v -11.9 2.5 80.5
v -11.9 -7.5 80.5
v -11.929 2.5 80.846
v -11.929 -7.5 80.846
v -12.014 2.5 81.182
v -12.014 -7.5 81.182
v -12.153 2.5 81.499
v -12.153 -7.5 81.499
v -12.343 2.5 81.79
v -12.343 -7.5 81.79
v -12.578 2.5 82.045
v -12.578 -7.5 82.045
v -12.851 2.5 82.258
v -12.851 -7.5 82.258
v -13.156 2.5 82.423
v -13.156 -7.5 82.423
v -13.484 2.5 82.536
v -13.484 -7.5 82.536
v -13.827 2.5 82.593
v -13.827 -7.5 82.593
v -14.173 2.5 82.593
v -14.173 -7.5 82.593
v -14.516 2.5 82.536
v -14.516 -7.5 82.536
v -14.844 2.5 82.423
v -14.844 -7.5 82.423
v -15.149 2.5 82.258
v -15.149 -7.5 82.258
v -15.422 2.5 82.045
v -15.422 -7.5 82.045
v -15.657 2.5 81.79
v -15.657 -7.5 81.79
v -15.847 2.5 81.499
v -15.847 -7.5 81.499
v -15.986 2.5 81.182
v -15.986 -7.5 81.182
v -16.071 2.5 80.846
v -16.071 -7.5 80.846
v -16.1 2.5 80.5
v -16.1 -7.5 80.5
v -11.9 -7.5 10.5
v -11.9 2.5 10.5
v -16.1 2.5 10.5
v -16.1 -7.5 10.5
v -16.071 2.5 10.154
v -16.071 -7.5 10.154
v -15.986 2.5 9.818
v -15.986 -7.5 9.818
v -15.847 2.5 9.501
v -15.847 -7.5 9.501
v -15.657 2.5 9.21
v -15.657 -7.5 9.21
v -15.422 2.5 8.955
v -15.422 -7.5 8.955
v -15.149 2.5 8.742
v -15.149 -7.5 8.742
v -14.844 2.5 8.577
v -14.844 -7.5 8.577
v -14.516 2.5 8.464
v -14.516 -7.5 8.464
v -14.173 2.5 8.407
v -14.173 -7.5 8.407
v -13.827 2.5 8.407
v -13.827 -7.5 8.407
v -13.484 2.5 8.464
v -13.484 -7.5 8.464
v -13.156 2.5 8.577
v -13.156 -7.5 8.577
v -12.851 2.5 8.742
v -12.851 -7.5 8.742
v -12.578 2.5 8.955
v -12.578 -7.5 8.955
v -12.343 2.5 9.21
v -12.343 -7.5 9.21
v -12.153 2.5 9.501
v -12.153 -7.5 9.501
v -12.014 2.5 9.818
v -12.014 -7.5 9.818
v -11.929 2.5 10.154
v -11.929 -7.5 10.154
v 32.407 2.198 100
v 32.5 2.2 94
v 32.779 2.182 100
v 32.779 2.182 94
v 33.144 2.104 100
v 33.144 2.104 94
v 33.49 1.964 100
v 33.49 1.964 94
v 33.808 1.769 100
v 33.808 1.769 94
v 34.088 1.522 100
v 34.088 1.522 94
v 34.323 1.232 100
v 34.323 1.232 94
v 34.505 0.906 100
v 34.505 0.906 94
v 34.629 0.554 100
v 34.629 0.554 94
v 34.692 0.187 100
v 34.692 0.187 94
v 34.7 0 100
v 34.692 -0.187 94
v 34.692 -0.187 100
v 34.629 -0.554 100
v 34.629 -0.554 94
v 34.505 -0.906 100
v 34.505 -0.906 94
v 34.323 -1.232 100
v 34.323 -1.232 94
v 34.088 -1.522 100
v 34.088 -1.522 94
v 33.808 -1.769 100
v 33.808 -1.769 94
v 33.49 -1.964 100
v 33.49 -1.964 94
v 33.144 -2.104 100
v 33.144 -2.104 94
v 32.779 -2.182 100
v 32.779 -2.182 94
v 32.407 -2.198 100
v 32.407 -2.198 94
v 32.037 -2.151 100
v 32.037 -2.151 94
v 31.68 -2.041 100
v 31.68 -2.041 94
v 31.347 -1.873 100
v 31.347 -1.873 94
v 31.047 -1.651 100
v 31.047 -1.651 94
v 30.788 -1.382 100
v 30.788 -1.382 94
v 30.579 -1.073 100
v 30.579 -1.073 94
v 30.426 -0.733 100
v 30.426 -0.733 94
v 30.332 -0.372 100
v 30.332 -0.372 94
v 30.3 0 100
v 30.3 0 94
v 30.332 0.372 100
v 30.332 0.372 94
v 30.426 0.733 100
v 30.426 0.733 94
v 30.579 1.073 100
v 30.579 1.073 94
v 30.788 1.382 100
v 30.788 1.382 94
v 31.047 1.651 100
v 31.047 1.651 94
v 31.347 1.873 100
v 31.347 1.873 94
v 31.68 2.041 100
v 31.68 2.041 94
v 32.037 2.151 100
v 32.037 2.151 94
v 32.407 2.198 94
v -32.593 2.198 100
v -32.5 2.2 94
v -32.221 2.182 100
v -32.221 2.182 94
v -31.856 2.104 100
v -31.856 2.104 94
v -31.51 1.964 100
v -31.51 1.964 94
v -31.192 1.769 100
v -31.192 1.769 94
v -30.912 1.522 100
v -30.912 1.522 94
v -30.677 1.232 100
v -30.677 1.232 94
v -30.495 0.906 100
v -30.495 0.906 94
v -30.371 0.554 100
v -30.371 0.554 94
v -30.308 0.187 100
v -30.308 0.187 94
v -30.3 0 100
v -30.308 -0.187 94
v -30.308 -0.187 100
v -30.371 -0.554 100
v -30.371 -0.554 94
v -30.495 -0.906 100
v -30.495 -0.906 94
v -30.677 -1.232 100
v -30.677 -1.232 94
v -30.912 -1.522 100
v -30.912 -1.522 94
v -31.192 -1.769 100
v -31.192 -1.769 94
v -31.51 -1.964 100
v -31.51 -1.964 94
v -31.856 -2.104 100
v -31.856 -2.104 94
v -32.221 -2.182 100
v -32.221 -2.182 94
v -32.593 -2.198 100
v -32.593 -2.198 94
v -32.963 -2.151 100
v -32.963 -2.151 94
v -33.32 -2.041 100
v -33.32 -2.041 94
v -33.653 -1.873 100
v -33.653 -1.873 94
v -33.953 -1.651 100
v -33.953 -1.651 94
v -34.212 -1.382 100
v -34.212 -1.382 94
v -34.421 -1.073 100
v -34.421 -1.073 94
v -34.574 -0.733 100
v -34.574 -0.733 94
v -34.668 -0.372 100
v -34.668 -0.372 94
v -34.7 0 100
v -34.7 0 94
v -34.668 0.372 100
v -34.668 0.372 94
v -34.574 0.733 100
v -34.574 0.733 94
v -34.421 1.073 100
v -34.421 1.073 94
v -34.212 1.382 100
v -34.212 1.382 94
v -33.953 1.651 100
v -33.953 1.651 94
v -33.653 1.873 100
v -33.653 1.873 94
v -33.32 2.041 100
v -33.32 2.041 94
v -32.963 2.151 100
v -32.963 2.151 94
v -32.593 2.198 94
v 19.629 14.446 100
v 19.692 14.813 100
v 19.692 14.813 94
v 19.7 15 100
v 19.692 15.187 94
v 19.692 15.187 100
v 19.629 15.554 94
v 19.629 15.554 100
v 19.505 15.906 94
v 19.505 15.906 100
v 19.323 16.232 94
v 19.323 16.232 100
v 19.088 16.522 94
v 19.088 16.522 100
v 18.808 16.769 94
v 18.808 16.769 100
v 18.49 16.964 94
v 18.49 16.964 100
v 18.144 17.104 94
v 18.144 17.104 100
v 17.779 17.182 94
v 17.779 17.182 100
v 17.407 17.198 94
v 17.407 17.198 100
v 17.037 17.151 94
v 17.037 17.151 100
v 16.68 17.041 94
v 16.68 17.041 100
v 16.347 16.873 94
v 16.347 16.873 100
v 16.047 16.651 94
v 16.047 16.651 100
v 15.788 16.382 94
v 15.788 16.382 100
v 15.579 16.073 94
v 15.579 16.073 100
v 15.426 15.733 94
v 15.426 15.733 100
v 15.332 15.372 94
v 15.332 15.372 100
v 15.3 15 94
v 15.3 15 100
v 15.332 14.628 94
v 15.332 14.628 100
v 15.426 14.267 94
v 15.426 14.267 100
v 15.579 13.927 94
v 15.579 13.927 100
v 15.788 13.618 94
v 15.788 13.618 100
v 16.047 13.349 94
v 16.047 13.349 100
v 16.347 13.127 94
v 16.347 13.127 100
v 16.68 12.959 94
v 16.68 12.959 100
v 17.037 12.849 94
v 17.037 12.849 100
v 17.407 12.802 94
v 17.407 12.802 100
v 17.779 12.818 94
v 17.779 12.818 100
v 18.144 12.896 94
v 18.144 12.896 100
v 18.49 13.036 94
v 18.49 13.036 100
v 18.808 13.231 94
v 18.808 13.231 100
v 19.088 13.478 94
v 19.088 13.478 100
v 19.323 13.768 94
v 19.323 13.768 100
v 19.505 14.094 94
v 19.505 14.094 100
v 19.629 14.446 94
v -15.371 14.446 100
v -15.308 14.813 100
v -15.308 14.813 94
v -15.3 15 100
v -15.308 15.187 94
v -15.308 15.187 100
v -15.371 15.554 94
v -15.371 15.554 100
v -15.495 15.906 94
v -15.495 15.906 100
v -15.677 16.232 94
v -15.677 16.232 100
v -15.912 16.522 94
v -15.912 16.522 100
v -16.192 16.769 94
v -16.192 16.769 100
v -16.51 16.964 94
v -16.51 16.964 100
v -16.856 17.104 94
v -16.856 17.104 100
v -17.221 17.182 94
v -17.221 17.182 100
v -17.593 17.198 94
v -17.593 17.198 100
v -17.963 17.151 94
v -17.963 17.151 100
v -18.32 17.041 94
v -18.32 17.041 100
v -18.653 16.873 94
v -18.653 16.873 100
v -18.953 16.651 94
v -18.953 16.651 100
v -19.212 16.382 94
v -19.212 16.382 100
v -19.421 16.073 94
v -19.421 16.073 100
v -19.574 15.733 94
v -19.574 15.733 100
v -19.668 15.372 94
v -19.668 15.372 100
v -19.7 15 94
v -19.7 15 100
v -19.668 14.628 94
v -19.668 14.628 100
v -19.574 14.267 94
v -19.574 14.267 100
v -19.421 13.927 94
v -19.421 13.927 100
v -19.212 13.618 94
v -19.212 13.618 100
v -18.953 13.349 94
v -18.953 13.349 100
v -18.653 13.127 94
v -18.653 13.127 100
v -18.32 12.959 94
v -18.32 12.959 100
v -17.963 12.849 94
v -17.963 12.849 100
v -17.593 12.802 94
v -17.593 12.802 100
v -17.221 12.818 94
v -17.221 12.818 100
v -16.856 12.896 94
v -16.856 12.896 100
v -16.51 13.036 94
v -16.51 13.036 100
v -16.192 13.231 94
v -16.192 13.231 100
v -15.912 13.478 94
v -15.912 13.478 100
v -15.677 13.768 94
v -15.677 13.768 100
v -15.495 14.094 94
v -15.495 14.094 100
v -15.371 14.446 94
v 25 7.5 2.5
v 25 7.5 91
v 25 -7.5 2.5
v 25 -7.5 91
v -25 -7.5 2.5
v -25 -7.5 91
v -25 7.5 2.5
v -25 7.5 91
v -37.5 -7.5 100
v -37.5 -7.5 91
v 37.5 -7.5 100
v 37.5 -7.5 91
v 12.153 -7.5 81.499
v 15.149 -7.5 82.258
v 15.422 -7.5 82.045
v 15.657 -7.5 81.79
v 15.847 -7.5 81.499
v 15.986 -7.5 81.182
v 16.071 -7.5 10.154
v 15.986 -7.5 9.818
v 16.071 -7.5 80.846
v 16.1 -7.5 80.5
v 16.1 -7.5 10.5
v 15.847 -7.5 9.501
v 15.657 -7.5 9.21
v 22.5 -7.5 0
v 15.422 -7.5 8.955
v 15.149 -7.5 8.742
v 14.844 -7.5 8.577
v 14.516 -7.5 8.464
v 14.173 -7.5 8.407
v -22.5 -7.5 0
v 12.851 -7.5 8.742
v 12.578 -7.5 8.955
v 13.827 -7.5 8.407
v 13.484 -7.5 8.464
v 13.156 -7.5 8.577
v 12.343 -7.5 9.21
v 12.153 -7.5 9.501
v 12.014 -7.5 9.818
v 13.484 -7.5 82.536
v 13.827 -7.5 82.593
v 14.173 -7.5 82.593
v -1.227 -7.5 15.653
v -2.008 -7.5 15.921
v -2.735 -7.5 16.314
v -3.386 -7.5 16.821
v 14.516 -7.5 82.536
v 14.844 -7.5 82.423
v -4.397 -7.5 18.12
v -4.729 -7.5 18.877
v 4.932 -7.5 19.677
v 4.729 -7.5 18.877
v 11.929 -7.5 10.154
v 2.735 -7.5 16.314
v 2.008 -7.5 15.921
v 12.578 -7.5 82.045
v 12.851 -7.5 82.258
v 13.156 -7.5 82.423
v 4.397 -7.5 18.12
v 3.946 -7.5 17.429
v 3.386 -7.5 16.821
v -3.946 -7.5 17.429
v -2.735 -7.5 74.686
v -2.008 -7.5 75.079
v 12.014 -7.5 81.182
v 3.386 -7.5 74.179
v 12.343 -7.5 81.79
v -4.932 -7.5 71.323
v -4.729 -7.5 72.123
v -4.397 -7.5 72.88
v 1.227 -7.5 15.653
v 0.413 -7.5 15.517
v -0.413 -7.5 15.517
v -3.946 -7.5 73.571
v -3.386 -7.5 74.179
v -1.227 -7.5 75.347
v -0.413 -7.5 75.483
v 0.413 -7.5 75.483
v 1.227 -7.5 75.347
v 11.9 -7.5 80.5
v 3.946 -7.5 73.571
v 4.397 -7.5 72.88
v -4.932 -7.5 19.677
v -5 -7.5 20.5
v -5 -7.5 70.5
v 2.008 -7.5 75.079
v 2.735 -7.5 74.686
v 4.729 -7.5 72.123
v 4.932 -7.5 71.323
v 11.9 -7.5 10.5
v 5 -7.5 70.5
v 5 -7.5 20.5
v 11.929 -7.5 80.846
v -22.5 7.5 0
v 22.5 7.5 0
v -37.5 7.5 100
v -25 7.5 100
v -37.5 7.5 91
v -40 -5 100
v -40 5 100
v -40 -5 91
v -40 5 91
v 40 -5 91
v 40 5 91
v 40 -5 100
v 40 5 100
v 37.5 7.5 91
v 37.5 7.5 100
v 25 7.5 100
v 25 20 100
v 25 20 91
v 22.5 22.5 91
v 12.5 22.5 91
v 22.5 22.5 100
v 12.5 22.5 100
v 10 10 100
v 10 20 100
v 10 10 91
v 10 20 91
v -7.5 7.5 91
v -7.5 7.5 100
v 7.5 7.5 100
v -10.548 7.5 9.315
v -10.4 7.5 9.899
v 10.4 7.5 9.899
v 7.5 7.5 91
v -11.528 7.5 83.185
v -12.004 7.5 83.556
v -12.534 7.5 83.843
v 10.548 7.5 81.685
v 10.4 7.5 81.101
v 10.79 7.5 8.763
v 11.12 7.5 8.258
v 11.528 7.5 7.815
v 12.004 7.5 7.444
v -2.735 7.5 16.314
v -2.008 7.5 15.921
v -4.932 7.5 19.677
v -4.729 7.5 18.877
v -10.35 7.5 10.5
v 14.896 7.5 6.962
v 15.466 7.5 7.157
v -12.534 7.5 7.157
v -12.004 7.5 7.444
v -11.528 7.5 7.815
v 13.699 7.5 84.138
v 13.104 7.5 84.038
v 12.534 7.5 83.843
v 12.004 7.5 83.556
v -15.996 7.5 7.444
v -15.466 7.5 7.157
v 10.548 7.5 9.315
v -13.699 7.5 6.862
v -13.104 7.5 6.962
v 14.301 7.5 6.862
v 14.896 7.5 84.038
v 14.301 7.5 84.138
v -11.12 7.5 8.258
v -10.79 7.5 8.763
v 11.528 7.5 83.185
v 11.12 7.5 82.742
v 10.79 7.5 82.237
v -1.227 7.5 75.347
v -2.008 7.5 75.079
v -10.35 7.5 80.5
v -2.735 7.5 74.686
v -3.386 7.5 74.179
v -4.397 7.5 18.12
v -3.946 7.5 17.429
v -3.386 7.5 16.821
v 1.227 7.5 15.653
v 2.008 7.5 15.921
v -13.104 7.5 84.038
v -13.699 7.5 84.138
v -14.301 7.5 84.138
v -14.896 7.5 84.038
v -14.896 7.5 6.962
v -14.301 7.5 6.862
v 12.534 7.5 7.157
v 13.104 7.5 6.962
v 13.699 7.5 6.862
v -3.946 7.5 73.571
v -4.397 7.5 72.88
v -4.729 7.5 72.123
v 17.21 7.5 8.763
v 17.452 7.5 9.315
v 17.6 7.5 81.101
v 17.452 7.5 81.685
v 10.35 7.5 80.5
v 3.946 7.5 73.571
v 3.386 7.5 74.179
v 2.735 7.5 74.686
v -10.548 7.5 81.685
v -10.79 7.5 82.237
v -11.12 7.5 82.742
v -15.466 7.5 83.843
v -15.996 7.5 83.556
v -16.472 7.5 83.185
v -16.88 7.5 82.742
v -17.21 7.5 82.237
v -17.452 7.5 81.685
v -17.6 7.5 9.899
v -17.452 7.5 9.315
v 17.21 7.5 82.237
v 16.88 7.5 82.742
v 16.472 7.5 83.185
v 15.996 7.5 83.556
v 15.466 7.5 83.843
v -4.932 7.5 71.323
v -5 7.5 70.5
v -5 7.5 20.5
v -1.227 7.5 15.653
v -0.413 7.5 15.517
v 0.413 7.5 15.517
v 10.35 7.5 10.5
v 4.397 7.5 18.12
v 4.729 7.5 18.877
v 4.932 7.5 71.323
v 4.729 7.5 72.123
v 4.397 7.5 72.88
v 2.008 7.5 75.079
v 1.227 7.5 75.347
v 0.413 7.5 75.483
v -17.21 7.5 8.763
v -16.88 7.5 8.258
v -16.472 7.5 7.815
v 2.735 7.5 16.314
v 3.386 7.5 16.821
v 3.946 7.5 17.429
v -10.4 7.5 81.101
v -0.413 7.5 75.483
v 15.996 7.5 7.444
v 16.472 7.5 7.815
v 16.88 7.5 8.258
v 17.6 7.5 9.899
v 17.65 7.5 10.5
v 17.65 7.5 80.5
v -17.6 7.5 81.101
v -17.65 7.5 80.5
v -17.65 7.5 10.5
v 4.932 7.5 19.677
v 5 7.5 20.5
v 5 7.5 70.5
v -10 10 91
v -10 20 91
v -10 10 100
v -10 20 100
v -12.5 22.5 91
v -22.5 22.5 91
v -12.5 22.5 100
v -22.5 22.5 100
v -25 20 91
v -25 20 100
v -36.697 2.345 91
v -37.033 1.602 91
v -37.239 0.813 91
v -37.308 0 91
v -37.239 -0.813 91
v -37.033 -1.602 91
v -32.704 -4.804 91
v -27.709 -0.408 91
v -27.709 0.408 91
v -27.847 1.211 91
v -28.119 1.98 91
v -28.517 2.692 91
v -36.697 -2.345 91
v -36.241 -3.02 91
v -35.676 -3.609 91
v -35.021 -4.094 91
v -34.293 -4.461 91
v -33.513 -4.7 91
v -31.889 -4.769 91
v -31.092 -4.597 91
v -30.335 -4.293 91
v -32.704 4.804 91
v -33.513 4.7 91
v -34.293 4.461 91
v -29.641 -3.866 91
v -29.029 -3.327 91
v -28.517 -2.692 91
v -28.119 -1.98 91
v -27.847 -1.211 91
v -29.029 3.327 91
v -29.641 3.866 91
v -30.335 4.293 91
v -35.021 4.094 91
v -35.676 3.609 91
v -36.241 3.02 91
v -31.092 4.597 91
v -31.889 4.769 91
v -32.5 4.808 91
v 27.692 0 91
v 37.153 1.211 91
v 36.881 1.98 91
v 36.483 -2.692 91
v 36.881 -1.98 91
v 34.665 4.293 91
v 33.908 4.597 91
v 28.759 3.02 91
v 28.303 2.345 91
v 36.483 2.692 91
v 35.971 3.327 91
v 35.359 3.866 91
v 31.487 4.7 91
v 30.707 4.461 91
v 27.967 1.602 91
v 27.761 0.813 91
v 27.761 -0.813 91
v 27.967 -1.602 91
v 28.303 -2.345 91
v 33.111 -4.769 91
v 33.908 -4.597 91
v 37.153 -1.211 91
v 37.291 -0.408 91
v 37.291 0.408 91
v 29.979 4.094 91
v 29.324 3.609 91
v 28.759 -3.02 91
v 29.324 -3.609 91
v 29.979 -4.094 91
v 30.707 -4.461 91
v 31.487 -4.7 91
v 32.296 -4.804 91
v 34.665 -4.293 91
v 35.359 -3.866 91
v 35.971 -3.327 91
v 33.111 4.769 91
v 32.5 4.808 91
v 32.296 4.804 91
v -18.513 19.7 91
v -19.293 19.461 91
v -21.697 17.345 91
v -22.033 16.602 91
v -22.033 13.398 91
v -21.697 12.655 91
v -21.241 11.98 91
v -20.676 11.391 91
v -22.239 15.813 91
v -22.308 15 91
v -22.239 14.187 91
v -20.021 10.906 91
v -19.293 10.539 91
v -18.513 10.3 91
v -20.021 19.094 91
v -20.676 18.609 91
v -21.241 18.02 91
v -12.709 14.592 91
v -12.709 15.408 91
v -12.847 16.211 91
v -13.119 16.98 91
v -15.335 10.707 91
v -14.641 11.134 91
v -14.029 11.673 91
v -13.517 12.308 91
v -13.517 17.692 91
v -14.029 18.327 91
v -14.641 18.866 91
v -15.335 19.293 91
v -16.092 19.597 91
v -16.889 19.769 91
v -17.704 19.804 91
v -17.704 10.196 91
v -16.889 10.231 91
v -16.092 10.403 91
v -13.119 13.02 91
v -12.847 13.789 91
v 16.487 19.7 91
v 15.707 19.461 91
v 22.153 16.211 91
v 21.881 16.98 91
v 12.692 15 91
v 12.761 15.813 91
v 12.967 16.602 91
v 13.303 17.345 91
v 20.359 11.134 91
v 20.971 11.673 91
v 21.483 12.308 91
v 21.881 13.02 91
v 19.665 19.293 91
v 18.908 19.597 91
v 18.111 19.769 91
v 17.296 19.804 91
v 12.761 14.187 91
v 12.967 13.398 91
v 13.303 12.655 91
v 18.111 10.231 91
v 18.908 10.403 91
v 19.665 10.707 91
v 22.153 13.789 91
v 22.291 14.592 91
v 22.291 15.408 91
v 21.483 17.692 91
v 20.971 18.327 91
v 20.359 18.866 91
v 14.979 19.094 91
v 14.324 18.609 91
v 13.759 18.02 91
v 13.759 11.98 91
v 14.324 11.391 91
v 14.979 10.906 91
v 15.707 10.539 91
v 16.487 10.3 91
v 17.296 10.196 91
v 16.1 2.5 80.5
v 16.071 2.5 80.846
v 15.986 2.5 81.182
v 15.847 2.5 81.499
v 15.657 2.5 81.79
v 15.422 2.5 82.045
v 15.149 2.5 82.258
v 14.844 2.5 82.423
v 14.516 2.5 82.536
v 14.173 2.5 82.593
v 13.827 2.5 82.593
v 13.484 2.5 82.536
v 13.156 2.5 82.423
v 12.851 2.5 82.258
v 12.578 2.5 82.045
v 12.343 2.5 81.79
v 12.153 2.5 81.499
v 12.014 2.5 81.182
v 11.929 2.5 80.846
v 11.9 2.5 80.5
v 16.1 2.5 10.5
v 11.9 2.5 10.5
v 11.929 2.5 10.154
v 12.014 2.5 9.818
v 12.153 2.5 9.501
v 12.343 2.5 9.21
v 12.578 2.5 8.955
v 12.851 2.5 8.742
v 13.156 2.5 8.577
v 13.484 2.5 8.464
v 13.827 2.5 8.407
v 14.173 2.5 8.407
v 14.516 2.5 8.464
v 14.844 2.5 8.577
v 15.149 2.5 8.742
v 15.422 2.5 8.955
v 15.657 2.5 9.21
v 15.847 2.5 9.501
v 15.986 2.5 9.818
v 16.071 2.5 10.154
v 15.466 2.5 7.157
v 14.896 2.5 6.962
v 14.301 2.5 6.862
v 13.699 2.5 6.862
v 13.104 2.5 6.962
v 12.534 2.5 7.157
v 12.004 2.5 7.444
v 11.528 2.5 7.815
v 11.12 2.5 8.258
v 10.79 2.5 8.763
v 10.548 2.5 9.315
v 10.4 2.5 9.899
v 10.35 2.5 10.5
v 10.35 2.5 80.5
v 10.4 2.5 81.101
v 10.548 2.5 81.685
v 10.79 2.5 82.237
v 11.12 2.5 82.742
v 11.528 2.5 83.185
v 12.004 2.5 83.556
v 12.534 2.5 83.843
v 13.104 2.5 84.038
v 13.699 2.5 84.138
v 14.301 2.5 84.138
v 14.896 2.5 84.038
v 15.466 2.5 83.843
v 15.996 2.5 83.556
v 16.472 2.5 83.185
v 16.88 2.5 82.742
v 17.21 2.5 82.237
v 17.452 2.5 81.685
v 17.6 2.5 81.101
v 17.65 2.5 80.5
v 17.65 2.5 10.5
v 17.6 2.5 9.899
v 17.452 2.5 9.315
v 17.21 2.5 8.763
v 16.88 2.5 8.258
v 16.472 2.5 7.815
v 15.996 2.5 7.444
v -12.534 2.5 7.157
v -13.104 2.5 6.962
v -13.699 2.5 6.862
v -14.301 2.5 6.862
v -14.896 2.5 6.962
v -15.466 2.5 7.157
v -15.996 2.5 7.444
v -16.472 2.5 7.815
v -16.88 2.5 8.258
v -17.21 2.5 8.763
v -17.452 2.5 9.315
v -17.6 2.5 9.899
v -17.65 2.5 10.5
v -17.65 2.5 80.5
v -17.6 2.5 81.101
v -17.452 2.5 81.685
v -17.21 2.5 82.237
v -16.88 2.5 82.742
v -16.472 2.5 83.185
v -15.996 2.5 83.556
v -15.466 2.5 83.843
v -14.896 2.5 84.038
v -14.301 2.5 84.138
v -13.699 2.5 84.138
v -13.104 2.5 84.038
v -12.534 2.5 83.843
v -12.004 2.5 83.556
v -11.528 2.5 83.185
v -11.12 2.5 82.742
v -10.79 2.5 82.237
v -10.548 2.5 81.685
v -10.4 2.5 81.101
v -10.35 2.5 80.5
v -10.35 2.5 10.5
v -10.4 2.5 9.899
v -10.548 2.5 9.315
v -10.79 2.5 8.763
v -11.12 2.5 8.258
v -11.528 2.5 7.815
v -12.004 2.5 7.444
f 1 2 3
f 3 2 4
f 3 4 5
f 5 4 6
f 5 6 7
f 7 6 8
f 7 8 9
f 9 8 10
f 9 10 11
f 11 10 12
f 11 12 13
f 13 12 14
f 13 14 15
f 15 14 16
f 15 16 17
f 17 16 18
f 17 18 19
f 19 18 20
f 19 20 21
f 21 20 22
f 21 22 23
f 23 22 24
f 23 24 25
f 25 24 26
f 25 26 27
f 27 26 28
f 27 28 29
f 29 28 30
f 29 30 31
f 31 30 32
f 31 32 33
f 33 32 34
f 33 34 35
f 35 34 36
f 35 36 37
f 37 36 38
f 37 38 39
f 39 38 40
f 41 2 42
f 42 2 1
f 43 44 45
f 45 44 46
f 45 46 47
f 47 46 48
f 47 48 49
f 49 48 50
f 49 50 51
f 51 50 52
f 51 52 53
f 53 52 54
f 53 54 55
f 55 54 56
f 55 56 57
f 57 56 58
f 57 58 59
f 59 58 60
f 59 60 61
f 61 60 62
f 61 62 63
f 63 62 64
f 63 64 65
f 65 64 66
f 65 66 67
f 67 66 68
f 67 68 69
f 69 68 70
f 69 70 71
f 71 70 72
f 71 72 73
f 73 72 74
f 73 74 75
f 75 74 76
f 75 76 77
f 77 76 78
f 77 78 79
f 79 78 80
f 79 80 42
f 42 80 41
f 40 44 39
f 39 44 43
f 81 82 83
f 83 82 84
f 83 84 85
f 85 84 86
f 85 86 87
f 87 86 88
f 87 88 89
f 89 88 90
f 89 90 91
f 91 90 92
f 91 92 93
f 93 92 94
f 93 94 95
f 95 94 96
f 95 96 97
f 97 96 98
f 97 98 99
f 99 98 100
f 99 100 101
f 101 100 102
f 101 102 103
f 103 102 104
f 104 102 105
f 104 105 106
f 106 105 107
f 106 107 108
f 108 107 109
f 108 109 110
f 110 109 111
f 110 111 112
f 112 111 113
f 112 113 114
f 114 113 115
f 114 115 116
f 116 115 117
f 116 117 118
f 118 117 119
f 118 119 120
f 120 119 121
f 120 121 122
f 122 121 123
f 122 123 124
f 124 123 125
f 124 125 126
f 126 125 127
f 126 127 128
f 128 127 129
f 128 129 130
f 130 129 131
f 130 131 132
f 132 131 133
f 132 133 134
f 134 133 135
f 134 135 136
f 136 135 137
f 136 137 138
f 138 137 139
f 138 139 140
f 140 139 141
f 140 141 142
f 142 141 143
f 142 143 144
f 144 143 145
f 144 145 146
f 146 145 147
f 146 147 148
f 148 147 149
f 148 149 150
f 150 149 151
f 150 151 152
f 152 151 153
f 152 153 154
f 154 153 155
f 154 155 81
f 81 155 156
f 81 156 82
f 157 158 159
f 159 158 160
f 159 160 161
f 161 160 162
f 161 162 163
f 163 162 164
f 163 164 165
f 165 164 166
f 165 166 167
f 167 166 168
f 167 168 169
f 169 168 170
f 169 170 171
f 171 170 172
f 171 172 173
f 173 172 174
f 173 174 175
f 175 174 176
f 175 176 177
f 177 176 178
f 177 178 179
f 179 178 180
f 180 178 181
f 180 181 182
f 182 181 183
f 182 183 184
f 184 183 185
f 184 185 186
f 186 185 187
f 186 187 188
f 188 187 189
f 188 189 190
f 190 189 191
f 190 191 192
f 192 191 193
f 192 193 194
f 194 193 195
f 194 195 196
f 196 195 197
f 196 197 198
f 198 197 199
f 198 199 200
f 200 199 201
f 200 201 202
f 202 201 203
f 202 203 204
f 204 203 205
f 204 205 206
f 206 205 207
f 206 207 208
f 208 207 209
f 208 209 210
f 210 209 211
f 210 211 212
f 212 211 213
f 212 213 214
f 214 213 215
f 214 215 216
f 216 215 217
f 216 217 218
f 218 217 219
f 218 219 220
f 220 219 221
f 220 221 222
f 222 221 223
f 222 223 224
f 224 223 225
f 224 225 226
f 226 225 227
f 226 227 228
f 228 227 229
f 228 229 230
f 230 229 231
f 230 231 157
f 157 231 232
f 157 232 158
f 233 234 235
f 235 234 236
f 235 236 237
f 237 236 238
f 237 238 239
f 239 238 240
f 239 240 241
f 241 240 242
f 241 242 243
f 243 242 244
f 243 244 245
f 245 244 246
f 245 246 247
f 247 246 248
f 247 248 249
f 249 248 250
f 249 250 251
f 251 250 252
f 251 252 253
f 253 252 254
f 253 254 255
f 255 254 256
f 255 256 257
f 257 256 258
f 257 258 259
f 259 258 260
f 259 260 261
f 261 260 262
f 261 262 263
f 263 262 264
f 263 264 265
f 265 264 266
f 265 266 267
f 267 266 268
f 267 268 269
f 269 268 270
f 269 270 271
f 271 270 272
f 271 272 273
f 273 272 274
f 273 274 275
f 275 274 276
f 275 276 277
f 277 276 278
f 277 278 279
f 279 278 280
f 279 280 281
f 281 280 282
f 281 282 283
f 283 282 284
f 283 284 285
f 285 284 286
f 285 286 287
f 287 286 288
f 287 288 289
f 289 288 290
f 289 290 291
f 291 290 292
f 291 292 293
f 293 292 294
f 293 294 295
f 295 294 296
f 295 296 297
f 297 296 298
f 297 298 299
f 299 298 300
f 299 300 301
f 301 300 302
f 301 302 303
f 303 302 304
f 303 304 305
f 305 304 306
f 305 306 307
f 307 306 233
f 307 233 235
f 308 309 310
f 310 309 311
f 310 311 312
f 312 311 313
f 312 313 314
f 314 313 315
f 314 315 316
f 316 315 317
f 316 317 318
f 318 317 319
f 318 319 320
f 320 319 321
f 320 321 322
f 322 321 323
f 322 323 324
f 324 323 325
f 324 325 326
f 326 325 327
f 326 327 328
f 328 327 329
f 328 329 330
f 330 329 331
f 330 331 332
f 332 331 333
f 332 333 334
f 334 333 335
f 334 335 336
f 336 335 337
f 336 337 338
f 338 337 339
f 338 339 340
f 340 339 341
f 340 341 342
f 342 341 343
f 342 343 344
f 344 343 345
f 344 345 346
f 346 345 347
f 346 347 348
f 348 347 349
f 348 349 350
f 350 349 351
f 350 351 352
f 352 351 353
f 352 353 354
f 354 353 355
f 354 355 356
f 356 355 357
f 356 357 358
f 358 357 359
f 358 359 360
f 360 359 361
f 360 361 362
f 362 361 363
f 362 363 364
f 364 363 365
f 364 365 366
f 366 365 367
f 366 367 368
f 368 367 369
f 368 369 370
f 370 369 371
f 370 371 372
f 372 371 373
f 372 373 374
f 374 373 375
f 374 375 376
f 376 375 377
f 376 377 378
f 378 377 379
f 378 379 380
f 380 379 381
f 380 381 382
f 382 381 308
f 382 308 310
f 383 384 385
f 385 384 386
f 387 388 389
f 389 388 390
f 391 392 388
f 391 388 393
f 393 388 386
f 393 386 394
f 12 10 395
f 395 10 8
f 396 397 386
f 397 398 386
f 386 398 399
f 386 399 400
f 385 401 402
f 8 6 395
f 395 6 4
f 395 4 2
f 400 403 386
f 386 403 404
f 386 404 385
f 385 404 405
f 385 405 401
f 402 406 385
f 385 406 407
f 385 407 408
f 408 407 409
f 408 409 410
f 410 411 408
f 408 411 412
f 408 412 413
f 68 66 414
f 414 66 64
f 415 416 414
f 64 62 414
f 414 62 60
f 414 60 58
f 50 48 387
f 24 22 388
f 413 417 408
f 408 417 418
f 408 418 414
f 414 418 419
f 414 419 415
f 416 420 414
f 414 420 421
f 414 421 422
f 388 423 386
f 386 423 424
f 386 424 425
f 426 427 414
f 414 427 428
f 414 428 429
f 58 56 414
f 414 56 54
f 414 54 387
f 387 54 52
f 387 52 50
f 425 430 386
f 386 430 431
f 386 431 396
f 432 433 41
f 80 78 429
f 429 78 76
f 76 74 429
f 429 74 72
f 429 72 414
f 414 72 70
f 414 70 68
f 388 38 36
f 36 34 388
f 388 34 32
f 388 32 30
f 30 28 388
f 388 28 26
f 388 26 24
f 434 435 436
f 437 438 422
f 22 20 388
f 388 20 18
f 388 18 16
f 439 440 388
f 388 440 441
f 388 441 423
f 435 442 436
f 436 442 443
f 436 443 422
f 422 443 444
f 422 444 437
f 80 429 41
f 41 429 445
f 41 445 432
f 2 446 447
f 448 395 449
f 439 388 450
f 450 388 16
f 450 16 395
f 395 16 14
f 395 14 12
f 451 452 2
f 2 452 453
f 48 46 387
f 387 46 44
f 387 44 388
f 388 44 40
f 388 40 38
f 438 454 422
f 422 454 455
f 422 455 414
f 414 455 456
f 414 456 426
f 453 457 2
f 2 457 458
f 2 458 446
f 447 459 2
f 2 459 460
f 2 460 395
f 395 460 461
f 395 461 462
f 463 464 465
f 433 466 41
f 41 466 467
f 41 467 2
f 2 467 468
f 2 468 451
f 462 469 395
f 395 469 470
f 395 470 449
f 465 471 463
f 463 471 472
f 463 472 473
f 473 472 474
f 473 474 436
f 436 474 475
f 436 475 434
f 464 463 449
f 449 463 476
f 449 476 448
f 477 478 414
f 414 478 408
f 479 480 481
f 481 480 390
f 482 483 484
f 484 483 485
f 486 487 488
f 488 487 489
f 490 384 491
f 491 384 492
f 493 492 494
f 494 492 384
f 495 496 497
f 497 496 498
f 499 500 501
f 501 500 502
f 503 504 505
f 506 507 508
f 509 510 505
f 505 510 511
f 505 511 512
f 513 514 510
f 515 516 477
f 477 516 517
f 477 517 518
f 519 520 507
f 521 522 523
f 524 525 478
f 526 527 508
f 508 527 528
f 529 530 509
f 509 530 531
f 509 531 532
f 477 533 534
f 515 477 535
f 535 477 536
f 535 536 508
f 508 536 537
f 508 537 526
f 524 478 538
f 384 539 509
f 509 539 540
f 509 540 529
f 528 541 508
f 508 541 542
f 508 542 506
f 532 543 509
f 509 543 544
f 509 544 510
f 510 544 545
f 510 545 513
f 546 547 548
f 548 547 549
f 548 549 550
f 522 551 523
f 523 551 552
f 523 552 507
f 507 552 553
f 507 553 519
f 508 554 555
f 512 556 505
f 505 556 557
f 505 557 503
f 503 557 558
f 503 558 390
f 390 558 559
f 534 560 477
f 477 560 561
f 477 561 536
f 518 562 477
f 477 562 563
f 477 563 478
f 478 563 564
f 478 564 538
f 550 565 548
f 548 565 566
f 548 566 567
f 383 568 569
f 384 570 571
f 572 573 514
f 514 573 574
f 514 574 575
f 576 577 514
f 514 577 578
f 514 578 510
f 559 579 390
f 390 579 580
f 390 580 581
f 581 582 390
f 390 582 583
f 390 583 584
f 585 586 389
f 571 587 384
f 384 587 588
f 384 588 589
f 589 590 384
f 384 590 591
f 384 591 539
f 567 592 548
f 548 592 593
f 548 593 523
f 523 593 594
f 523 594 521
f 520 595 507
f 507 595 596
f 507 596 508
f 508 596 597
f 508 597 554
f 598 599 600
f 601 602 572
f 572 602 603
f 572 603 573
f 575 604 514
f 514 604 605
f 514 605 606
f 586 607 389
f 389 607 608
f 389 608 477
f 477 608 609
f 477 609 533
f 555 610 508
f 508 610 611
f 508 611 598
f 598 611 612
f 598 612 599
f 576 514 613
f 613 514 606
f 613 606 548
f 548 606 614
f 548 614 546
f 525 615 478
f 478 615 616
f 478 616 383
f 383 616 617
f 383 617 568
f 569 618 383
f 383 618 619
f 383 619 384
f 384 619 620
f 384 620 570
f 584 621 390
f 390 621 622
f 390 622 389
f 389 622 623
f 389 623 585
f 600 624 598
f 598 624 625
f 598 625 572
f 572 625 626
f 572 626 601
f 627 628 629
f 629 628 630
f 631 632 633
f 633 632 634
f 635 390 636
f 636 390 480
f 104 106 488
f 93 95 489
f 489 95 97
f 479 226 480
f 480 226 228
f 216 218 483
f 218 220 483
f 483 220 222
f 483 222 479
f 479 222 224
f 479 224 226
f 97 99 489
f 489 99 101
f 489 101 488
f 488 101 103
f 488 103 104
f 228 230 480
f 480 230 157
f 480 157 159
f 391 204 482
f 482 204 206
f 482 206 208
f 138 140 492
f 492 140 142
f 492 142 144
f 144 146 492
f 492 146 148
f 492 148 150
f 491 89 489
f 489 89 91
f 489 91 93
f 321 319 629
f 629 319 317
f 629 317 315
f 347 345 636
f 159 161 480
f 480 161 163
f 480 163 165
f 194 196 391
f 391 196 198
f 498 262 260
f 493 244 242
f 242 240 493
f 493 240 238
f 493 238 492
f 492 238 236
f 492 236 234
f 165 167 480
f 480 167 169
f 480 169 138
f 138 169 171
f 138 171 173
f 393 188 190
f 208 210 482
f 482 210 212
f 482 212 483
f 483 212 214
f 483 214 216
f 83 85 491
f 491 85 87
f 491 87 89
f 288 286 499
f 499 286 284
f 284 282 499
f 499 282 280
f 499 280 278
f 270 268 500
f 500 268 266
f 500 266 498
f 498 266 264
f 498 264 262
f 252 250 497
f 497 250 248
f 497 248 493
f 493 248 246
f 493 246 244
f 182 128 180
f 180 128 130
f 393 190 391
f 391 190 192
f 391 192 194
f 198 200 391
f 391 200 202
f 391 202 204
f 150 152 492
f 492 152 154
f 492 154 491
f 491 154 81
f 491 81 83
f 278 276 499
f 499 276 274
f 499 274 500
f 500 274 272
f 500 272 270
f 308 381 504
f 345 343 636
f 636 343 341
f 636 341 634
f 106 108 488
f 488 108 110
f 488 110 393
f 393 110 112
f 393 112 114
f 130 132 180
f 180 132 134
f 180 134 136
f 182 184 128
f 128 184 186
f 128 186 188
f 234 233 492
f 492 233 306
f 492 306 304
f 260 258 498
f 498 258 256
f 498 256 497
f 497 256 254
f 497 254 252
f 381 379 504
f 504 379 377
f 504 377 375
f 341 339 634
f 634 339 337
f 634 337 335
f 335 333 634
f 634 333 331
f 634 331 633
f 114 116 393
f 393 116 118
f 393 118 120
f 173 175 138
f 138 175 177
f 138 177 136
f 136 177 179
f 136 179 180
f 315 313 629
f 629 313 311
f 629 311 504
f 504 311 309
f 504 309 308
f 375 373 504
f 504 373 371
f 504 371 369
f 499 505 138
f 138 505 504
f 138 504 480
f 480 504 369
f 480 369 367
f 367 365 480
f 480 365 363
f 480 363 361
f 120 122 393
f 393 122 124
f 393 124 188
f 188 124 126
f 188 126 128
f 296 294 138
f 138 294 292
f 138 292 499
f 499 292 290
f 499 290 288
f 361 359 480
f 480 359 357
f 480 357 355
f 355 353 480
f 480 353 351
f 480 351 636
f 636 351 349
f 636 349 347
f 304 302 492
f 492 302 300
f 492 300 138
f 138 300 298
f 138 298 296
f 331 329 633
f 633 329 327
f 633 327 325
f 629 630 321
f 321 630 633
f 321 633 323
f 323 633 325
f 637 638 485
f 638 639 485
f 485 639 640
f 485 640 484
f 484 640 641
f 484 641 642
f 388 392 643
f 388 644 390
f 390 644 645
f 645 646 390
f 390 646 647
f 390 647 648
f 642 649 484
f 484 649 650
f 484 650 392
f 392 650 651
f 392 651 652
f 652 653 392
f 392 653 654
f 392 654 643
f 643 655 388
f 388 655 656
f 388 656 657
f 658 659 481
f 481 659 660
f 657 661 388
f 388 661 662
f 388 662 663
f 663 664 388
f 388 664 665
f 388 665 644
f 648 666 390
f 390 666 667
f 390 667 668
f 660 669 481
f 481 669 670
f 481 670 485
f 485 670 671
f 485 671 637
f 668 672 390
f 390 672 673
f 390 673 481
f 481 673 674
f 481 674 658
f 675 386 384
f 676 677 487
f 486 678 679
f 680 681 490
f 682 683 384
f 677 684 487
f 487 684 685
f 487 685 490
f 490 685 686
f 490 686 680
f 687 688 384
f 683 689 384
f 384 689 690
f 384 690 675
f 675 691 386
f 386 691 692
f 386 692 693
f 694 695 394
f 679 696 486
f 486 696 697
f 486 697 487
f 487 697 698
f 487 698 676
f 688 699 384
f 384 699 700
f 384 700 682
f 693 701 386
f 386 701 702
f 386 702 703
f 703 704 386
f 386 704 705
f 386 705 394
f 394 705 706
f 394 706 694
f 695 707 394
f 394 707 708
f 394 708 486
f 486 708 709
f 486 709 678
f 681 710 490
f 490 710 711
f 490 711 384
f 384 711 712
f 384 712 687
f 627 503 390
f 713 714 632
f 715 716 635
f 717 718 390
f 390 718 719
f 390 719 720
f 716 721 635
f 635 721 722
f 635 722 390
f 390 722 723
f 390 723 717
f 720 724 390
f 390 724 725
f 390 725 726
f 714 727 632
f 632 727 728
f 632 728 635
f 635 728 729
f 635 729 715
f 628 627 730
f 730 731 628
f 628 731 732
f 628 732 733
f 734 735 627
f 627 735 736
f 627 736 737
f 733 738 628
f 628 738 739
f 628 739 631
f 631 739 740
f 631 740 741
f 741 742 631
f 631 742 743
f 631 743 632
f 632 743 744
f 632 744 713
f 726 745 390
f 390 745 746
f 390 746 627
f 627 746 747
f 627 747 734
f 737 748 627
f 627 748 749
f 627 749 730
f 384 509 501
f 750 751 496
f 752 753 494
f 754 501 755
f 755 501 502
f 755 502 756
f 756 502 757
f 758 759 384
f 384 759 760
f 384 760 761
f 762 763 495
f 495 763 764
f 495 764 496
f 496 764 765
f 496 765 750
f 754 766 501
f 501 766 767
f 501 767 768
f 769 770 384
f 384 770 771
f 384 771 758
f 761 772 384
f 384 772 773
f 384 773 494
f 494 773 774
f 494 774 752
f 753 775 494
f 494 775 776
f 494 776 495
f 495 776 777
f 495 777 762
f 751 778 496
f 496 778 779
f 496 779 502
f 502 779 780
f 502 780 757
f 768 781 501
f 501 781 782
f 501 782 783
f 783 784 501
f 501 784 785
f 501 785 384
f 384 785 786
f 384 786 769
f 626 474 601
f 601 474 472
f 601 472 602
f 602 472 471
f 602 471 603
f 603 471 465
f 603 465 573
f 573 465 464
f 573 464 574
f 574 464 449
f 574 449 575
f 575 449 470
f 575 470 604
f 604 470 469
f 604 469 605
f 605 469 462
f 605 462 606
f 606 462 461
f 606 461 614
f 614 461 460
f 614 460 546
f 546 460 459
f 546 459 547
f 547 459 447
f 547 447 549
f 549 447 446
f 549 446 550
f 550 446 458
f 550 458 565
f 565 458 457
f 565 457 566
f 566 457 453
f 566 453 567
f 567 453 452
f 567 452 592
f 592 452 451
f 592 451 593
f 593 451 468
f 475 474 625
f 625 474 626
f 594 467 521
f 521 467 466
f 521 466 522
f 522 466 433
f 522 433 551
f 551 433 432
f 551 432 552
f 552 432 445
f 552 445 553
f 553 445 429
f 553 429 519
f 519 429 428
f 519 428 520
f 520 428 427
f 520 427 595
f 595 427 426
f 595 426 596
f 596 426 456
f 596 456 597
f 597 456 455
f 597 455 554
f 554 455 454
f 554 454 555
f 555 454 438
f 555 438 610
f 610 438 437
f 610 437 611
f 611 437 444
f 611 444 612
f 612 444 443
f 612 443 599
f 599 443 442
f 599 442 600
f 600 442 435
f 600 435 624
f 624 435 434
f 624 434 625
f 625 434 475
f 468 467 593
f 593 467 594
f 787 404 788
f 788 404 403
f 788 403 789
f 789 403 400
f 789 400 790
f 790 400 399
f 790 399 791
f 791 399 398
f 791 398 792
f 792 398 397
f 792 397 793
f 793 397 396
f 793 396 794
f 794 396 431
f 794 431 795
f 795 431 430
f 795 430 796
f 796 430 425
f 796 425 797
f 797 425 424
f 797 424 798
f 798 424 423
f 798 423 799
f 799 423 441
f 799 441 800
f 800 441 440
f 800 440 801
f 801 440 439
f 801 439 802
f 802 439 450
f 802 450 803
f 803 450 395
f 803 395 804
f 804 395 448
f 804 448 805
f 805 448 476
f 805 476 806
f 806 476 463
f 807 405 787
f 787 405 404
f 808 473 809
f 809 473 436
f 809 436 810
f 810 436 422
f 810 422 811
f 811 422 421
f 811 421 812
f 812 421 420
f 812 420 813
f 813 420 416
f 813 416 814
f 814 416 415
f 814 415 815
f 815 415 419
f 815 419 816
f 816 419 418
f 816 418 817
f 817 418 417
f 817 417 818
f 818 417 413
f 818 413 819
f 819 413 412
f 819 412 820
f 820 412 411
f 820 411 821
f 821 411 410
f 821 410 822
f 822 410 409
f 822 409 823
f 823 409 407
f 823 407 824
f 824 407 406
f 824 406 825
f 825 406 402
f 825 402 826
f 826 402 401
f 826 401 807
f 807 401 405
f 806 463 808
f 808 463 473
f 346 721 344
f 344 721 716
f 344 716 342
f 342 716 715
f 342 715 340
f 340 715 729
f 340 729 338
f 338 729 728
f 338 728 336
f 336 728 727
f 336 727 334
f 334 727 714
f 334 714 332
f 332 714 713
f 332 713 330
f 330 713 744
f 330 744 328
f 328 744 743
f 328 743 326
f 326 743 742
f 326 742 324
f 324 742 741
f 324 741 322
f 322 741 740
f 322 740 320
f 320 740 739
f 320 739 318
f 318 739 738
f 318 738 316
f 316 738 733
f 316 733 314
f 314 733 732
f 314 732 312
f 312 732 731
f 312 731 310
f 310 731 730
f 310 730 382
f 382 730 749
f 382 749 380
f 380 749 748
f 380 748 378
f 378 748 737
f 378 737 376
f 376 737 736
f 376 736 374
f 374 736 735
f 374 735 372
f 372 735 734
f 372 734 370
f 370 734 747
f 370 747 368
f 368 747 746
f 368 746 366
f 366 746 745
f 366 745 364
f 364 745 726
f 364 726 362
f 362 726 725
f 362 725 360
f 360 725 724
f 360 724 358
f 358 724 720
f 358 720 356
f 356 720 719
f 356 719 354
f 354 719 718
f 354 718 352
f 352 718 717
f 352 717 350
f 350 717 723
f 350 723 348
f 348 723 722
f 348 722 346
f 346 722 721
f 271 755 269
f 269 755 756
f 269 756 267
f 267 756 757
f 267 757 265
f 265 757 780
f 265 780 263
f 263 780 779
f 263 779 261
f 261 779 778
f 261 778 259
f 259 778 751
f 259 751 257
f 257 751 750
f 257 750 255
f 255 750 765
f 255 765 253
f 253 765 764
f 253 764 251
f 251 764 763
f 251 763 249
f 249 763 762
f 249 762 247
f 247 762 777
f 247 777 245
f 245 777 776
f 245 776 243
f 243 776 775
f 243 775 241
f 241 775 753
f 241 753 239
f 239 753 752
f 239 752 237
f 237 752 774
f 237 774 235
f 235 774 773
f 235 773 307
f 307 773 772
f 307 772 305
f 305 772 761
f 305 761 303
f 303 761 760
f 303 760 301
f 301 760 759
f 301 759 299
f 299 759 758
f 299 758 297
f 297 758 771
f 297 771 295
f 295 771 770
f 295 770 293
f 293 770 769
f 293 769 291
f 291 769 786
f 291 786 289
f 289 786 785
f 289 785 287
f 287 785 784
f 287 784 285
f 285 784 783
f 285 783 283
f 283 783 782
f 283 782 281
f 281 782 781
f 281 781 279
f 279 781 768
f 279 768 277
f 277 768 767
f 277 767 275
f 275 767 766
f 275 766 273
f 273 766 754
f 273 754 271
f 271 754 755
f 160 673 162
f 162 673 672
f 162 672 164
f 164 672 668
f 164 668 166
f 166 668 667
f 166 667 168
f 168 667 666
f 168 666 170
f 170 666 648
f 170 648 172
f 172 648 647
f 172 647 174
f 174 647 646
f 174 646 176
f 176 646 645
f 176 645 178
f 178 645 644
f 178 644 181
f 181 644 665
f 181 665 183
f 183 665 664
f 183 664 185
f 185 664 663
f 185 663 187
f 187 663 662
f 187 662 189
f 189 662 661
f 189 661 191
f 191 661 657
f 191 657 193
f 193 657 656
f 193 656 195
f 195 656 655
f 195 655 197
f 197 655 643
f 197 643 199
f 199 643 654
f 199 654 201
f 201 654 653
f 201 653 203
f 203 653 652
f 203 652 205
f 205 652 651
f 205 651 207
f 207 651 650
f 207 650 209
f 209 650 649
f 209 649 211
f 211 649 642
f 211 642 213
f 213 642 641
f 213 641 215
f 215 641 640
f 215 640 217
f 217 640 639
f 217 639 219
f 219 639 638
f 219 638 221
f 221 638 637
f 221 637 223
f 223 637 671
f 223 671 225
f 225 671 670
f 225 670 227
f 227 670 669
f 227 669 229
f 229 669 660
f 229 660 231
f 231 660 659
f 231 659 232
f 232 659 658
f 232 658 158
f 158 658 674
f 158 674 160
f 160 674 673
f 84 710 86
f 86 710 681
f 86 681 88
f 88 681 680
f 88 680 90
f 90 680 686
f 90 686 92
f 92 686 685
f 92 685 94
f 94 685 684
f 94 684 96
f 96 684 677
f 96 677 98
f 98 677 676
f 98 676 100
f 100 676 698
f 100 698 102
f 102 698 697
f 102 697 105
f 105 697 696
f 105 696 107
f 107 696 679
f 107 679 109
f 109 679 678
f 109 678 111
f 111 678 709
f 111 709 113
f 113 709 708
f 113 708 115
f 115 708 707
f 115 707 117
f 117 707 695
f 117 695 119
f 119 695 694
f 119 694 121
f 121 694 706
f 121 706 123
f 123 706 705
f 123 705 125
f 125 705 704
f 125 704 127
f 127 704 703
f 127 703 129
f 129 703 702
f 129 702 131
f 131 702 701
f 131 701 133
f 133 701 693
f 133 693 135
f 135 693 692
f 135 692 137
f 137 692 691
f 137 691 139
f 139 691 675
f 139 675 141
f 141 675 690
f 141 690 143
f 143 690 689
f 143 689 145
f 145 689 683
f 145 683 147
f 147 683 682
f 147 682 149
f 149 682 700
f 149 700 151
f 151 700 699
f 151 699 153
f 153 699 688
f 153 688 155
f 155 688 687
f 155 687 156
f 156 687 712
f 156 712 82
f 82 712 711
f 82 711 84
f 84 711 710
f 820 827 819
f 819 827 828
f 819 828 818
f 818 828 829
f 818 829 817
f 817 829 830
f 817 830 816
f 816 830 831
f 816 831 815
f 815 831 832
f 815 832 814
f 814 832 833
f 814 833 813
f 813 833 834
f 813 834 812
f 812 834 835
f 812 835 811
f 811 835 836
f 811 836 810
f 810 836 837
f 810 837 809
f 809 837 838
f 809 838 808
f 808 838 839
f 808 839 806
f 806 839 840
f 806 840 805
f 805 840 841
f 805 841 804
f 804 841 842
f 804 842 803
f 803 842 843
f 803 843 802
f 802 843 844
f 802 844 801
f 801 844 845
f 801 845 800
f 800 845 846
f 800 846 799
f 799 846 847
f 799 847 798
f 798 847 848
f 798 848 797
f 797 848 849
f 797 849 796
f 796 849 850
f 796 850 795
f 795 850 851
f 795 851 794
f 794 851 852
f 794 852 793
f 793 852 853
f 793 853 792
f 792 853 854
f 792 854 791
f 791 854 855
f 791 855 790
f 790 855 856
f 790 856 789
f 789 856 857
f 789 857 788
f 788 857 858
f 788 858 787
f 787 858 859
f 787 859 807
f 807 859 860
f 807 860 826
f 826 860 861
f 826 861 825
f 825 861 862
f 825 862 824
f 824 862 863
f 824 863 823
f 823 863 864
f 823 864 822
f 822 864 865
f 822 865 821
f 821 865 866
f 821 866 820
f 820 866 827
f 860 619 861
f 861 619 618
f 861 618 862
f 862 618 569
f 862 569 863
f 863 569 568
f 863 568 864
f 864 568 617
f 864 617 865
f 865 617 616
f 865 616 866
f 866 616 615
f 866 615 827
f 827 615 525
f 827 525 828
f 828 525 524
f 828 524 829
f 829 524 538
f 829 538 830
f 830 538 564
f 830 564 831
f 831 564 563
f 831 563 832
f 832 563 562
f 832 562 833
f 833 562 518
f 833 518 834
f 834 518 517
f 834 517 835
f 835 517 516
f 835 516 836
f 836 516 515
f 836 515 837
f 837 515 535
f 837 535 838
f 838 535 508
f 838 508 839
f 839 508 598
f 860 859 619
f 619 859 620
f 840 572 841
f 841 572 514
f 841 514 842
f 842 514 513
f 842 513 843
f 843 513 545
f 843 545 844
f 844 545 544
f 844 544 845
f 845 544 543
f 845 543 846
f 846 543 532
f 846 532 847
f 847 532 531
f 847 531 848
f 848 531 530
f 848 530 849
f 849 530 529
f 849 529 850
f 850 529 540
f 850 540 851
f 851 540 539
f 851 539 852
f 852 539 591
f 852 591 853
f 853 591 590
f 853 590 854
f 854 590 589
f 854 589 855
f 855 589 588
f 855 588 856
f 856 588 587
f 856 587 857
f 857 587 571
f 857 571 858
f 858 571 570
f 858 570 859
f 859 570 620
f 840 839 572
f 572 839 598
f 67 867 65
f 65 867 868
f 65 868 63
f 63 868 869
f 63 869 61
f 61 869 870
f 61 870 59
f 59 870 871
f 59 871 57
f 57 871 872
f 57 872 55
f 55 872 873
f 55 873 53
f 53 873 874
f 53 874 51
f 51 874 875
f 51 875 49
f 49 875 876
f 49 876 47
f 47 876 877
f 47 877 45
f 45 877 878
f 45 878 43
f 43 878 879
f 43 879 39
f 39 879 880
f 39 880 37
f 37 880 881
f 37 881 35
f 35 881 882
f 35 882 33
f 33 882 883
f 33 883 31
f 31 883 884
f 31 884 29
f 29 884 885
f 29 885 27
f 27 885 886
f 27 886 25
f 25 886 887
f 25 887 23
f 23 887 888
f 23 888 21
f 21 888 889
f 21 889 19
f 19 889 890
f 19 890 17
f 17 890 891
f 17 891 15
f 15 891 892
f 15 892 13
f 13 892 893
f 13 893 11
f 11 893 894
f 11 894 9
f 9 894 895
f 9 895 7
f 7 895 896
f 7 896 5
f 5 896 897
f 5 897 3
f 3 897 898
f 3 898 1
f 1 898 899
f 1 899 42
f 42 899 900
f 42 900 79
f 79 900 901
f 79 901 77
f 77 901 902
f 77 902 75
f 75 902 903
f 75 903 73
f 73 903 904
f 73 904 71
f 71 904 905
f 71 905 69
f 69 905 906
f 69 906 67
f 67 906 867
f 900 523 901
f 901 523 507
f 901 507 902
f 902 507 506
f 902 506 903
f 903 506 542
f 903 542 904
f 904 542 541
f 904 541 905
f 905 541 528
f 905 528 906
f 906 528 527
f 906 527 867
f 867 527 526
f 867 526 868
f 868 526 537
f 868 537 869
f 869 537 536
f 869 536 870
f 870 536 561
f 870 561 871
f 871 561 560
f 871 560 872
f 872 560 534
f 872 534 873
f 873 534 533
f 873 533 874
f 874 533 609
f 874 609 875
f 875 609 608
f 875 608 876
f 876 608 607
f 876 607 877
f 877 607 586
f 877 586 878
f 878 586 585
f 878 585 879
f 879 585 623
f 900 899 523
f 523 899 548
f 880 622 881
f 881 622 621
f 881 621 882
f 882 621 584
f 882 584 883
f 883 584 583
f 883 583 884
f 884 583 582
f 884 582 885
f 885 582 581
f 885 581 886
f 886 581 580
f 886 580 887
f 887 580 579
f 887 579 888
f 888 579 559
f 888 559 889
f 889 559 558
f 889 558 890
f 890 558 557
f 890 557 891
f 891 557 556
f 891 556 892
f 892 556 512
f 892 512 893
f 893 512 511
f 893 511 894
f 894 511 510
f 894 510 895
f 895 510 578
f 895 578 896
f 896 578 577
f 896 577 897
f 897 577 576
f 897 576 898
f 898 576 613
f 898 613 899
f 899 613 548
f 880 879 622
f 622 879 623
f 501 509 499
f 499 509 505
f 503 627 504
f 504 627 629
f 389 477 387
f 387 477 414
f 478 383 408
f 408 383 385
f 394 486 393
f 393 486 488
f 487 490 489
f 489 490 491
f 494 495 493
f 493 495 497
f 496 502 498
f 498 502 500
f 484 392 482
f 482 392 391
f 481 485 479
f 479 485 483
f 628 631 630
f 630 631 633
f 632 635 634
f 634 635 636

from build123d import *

# Parameters (mm, degrees)
SKETCH1_R           = 2.2
BOSS_EXTRUDE1_DEPTH = 100
SKETCH5_W           = 15
SKETCH5_H           = 15
SKETCH5_R           = 2.2
CUT_EXTRUDE2_DEPTH  = 91
CUT_EXTRUDE3_DEPTH  = 112.803398875
LPATTERN1_COUNT     = 2
LPATTERN1_PITCH     = 35
CUT_EXTRUDE4_DEPTH  = 5
CHAMFER1_SIZE       = 2.5


with BuildPart() as part:
    # Sketch1 → Boss-Extrude1 (new body)
    with BuildSketch(Plane.XY):
        Polygon((-25, 22.5), (-25, 7.5), (-40, 7.5), (-40, -7.5), (40, -7.5), (40, 7.5), (25, 7.5), (25, 22.5), (10, 22.5), (10, 7.5), (-10, 7.5), (-10, 22.5), align=None)
        with Locations((-17.5, 15)):
            Circle(SKETCH1_R, mode=Mode.SUBTRACT)
        with Locations((-32.5, 0)):
            Circle(SKETCH1_R, mode=Mode.SUBTRACT)
        with Locations((17.5, 15)):
            Circle(SKETCH1_R, mode=Mode.SUBTRACT)
        with Locations((32.5, 0)):
            Circle(SKETCH1_R, mode=Mode.SUBTRACT)
    extrude(amount=BOSS_EXTRUDE1_DEPTH)

    # Sketch5 → Cut-Extrude2 (cut)
    # profile 1 of 4: a face of its own
    with BuildSketch(Plane(origin=(0, 0, 0), x_dir=(-1, 0, 0), z_dir=(0, 0, -1))):
        with Locations((-32.5, 0)):
            Rectangle(SKETCH5_W, SKETCH5_H)
        with Locations(Location((-32.5, 0, 0), (0, 0, 180))):
            Circle(SKETCH5_R, mode=Mode.SUBTRACT)
    # profile 2 of 4: a face of its own
    with BuildSketch(Plane(origin=(0, 0, 0), x_dir=(-1, 0, 0), z_dir=(0, 0, -1))):
        with Locations((-17.5, 15)):
            Rectangle(SKETCH5_W, SKETCH5_H)
        with Locations(Location((-17.5, 15, 0), (0, 0, 180))):
            Circle(SKETCH5_R, mode=Mode.SUBTRACT)
    # profile 3 of 4: a face of its own
    with BuildSketch(Plane(origin=(0, 0, 0), x_dir=(-1, 0, 0), z_dir=(0, 0, -1))):
        with Locations((17.5, 15)):
            Rectangle(SKETCH5_W, SKETCH5_H)
        with Locations(Location((17.5, 15, 0), (0, 0, 180))):
            Circle(SKETCH5_R, mode=Mode.SUBTRACT)
    # profile 4 of 4: a face of its own
    with BuildSketch(Plane(origin=(0, 0, 0), x_dir=(-1, 0, 0), z_dir=(0, 0, -1))):
        with Locations((32.5, 0)):
            Rectangle(SKETCH5_W, SKETCH5_H)
        with Locations(Location((32.5, 0, 0), (0, 0, 180))):
            Circle(SKETCH5_R, mode=Mode.SUBTRACT)
    extrude(amount=-CUT_EXTRUDE2_DEPTH, mode=Mode.SUBTRACT)

    # Sketch6 → Cut-Extrude3 (cut, through all)
    with BuildSketch(Plane.XZ.offset(7.5)):
        with BuildLine():
            Line((5, 70.5), (5, 20.5))
            ThreePointArc((5, 20.5), (0, 15.5), (-5, 20.5))
            Line((-5, 20.5), (-5, 70.5))
            ThreePointArc((-5, 70.5), (0, 75.5), (5, 70.5))
        make_face()
        with BuildLine():
            Line((-11.9, 80.5), (-11.9, 10.5))
            ThreePointArc((-11.9, 10.5), (-14, 8.4), (-16.1, 10.5))
            Line((-16.1, 10.5), (-16.1, 80.5))
            ThreePointArc((-16.1, 80.5), (-14, 82.6), (-11.9, 80.5))
        make_face()
        with BuildLine():
            Line((11.9, 80.5), (11.9, 10.5))
            ThreePointArc((11.9, 10.5), (14, 8.4), (16.1, 10.5))
            Line((16.1, 10.5), (16.1, 80.5))
            ThreePointArc((16.1, 80.5), (14, 82.6), (11.9, 80.5))
        make_face()
    extrude(amount=-CUT_EXTRUDE3_DEPTH, mode=Mode.SUBTRACT)

    # Sketch2 → Cut-Revolve1 (revolve, cut)
    with BuildSketch(Plane(origin=(0, 15, 0), x_dir=(1, 0, 0), z_dir=(0, 1, 0)), mode=Mode.PRIVATE) as cut_revolve1_sk:
        Polygon((-17.5, -91), (-17.5, -94), (-15.3, -94), (-12.692139787, -91), align=None)
    cut_revolve1 = revolve(cut_revolve1_sk.sketch.rotate(Axis((-17.5, 15, 91), (0, 0, 1)), 180), axis=Axis((-17.5, 15, 91), (0, 0, 1)), mode=Mode.SUBTRACT)

    # LPattern1: Cut-Revolve1 ×2
    with Locations(*[(i * LPATTERN1_PITCH, 0, 0) for i in range(1, LPATTERN1_COUNT)]):
        add(cut_revolve1, mode=Mode.SUBTRACT)

    # Sketch8 → Cut-Revolve2 (revolve, cut)
    with BuildSketch(Plane.ZY.offset(32.5)):
        Polygon((91, 0), (94, 0), (94, 2.2), (91, 4.807860213), align=None)
    cut_revolve2 = revolve(axis=Axis((-32.5, 0, 91), (0, 0, 1)), mode=Mode.SUBTRACT)

    # Mirror3: Cut-Revolve2 across plane
    add(cut_revolve2.mirror(Plane(origin=(0, 0, 0), x_dir=(0, 0, 1), z_dir=(1, 0, 0))), mode=Mode.SUBTRACT)

    # Sketch7 → Cut-Extrude4 (cut)
    with BuildSketch(Plane(origin=(0, 7.5, 0), x_dir=(1, 0, 0), z_dir=(0, 1, 0))):
        with BuildLine():
            Line((-10.35, -10.5), (-10.35, -80.5))
            ThreePointArc((-10.35, -80.5), (-14, -84.15), (-17.65, -80.5))
            Line((-17.65, -80.5), (-17.65, -10.5))
            ThreePointArc((-17.65, -10.5), (-14, -6.85), (-10.35, -10.5))
        make_face()
        with BuildLine():
            Line((10.35, -10.5), (10.35, -80.5))
            ThreePointArc((10.35, -80.5), (14, -84.15), (17.65, -80.5))
            Line((17.65, -80.5), (17.65, -10.5))
            ThreePointArc((17.65, -10.5), (14, -6.85), (10.35, -10.5))
        make_face()
    extrude(amount=-CUT_EXTRUDE4_DEPTH, mode=Mode.SUBTRACT)

    # Chamfer1
    chamfer1_edges = [part.edges().sort_by_distance(p)[0] for p in [
        (-25, 0, 0),
        (25, 0, 0),
        (-25, 22.5, 95.5),
        (-10, 22.5, 95.5),
        (-10, 7.5, 95.5),
        (10, 7.5, 95.5),
        (10, 22.5, 95.5),
        (25, 22.5, 95.5),
        (40, 7.5, 95.5),
        (40, -7.5, 95.5),
        (-40, -7.5, 95.5),
        (-40, 7.5, 95.5),
    ]]
    chamfer(chamfer1_edges, length=CHAMFER1_SIZE)


solid = part.part
